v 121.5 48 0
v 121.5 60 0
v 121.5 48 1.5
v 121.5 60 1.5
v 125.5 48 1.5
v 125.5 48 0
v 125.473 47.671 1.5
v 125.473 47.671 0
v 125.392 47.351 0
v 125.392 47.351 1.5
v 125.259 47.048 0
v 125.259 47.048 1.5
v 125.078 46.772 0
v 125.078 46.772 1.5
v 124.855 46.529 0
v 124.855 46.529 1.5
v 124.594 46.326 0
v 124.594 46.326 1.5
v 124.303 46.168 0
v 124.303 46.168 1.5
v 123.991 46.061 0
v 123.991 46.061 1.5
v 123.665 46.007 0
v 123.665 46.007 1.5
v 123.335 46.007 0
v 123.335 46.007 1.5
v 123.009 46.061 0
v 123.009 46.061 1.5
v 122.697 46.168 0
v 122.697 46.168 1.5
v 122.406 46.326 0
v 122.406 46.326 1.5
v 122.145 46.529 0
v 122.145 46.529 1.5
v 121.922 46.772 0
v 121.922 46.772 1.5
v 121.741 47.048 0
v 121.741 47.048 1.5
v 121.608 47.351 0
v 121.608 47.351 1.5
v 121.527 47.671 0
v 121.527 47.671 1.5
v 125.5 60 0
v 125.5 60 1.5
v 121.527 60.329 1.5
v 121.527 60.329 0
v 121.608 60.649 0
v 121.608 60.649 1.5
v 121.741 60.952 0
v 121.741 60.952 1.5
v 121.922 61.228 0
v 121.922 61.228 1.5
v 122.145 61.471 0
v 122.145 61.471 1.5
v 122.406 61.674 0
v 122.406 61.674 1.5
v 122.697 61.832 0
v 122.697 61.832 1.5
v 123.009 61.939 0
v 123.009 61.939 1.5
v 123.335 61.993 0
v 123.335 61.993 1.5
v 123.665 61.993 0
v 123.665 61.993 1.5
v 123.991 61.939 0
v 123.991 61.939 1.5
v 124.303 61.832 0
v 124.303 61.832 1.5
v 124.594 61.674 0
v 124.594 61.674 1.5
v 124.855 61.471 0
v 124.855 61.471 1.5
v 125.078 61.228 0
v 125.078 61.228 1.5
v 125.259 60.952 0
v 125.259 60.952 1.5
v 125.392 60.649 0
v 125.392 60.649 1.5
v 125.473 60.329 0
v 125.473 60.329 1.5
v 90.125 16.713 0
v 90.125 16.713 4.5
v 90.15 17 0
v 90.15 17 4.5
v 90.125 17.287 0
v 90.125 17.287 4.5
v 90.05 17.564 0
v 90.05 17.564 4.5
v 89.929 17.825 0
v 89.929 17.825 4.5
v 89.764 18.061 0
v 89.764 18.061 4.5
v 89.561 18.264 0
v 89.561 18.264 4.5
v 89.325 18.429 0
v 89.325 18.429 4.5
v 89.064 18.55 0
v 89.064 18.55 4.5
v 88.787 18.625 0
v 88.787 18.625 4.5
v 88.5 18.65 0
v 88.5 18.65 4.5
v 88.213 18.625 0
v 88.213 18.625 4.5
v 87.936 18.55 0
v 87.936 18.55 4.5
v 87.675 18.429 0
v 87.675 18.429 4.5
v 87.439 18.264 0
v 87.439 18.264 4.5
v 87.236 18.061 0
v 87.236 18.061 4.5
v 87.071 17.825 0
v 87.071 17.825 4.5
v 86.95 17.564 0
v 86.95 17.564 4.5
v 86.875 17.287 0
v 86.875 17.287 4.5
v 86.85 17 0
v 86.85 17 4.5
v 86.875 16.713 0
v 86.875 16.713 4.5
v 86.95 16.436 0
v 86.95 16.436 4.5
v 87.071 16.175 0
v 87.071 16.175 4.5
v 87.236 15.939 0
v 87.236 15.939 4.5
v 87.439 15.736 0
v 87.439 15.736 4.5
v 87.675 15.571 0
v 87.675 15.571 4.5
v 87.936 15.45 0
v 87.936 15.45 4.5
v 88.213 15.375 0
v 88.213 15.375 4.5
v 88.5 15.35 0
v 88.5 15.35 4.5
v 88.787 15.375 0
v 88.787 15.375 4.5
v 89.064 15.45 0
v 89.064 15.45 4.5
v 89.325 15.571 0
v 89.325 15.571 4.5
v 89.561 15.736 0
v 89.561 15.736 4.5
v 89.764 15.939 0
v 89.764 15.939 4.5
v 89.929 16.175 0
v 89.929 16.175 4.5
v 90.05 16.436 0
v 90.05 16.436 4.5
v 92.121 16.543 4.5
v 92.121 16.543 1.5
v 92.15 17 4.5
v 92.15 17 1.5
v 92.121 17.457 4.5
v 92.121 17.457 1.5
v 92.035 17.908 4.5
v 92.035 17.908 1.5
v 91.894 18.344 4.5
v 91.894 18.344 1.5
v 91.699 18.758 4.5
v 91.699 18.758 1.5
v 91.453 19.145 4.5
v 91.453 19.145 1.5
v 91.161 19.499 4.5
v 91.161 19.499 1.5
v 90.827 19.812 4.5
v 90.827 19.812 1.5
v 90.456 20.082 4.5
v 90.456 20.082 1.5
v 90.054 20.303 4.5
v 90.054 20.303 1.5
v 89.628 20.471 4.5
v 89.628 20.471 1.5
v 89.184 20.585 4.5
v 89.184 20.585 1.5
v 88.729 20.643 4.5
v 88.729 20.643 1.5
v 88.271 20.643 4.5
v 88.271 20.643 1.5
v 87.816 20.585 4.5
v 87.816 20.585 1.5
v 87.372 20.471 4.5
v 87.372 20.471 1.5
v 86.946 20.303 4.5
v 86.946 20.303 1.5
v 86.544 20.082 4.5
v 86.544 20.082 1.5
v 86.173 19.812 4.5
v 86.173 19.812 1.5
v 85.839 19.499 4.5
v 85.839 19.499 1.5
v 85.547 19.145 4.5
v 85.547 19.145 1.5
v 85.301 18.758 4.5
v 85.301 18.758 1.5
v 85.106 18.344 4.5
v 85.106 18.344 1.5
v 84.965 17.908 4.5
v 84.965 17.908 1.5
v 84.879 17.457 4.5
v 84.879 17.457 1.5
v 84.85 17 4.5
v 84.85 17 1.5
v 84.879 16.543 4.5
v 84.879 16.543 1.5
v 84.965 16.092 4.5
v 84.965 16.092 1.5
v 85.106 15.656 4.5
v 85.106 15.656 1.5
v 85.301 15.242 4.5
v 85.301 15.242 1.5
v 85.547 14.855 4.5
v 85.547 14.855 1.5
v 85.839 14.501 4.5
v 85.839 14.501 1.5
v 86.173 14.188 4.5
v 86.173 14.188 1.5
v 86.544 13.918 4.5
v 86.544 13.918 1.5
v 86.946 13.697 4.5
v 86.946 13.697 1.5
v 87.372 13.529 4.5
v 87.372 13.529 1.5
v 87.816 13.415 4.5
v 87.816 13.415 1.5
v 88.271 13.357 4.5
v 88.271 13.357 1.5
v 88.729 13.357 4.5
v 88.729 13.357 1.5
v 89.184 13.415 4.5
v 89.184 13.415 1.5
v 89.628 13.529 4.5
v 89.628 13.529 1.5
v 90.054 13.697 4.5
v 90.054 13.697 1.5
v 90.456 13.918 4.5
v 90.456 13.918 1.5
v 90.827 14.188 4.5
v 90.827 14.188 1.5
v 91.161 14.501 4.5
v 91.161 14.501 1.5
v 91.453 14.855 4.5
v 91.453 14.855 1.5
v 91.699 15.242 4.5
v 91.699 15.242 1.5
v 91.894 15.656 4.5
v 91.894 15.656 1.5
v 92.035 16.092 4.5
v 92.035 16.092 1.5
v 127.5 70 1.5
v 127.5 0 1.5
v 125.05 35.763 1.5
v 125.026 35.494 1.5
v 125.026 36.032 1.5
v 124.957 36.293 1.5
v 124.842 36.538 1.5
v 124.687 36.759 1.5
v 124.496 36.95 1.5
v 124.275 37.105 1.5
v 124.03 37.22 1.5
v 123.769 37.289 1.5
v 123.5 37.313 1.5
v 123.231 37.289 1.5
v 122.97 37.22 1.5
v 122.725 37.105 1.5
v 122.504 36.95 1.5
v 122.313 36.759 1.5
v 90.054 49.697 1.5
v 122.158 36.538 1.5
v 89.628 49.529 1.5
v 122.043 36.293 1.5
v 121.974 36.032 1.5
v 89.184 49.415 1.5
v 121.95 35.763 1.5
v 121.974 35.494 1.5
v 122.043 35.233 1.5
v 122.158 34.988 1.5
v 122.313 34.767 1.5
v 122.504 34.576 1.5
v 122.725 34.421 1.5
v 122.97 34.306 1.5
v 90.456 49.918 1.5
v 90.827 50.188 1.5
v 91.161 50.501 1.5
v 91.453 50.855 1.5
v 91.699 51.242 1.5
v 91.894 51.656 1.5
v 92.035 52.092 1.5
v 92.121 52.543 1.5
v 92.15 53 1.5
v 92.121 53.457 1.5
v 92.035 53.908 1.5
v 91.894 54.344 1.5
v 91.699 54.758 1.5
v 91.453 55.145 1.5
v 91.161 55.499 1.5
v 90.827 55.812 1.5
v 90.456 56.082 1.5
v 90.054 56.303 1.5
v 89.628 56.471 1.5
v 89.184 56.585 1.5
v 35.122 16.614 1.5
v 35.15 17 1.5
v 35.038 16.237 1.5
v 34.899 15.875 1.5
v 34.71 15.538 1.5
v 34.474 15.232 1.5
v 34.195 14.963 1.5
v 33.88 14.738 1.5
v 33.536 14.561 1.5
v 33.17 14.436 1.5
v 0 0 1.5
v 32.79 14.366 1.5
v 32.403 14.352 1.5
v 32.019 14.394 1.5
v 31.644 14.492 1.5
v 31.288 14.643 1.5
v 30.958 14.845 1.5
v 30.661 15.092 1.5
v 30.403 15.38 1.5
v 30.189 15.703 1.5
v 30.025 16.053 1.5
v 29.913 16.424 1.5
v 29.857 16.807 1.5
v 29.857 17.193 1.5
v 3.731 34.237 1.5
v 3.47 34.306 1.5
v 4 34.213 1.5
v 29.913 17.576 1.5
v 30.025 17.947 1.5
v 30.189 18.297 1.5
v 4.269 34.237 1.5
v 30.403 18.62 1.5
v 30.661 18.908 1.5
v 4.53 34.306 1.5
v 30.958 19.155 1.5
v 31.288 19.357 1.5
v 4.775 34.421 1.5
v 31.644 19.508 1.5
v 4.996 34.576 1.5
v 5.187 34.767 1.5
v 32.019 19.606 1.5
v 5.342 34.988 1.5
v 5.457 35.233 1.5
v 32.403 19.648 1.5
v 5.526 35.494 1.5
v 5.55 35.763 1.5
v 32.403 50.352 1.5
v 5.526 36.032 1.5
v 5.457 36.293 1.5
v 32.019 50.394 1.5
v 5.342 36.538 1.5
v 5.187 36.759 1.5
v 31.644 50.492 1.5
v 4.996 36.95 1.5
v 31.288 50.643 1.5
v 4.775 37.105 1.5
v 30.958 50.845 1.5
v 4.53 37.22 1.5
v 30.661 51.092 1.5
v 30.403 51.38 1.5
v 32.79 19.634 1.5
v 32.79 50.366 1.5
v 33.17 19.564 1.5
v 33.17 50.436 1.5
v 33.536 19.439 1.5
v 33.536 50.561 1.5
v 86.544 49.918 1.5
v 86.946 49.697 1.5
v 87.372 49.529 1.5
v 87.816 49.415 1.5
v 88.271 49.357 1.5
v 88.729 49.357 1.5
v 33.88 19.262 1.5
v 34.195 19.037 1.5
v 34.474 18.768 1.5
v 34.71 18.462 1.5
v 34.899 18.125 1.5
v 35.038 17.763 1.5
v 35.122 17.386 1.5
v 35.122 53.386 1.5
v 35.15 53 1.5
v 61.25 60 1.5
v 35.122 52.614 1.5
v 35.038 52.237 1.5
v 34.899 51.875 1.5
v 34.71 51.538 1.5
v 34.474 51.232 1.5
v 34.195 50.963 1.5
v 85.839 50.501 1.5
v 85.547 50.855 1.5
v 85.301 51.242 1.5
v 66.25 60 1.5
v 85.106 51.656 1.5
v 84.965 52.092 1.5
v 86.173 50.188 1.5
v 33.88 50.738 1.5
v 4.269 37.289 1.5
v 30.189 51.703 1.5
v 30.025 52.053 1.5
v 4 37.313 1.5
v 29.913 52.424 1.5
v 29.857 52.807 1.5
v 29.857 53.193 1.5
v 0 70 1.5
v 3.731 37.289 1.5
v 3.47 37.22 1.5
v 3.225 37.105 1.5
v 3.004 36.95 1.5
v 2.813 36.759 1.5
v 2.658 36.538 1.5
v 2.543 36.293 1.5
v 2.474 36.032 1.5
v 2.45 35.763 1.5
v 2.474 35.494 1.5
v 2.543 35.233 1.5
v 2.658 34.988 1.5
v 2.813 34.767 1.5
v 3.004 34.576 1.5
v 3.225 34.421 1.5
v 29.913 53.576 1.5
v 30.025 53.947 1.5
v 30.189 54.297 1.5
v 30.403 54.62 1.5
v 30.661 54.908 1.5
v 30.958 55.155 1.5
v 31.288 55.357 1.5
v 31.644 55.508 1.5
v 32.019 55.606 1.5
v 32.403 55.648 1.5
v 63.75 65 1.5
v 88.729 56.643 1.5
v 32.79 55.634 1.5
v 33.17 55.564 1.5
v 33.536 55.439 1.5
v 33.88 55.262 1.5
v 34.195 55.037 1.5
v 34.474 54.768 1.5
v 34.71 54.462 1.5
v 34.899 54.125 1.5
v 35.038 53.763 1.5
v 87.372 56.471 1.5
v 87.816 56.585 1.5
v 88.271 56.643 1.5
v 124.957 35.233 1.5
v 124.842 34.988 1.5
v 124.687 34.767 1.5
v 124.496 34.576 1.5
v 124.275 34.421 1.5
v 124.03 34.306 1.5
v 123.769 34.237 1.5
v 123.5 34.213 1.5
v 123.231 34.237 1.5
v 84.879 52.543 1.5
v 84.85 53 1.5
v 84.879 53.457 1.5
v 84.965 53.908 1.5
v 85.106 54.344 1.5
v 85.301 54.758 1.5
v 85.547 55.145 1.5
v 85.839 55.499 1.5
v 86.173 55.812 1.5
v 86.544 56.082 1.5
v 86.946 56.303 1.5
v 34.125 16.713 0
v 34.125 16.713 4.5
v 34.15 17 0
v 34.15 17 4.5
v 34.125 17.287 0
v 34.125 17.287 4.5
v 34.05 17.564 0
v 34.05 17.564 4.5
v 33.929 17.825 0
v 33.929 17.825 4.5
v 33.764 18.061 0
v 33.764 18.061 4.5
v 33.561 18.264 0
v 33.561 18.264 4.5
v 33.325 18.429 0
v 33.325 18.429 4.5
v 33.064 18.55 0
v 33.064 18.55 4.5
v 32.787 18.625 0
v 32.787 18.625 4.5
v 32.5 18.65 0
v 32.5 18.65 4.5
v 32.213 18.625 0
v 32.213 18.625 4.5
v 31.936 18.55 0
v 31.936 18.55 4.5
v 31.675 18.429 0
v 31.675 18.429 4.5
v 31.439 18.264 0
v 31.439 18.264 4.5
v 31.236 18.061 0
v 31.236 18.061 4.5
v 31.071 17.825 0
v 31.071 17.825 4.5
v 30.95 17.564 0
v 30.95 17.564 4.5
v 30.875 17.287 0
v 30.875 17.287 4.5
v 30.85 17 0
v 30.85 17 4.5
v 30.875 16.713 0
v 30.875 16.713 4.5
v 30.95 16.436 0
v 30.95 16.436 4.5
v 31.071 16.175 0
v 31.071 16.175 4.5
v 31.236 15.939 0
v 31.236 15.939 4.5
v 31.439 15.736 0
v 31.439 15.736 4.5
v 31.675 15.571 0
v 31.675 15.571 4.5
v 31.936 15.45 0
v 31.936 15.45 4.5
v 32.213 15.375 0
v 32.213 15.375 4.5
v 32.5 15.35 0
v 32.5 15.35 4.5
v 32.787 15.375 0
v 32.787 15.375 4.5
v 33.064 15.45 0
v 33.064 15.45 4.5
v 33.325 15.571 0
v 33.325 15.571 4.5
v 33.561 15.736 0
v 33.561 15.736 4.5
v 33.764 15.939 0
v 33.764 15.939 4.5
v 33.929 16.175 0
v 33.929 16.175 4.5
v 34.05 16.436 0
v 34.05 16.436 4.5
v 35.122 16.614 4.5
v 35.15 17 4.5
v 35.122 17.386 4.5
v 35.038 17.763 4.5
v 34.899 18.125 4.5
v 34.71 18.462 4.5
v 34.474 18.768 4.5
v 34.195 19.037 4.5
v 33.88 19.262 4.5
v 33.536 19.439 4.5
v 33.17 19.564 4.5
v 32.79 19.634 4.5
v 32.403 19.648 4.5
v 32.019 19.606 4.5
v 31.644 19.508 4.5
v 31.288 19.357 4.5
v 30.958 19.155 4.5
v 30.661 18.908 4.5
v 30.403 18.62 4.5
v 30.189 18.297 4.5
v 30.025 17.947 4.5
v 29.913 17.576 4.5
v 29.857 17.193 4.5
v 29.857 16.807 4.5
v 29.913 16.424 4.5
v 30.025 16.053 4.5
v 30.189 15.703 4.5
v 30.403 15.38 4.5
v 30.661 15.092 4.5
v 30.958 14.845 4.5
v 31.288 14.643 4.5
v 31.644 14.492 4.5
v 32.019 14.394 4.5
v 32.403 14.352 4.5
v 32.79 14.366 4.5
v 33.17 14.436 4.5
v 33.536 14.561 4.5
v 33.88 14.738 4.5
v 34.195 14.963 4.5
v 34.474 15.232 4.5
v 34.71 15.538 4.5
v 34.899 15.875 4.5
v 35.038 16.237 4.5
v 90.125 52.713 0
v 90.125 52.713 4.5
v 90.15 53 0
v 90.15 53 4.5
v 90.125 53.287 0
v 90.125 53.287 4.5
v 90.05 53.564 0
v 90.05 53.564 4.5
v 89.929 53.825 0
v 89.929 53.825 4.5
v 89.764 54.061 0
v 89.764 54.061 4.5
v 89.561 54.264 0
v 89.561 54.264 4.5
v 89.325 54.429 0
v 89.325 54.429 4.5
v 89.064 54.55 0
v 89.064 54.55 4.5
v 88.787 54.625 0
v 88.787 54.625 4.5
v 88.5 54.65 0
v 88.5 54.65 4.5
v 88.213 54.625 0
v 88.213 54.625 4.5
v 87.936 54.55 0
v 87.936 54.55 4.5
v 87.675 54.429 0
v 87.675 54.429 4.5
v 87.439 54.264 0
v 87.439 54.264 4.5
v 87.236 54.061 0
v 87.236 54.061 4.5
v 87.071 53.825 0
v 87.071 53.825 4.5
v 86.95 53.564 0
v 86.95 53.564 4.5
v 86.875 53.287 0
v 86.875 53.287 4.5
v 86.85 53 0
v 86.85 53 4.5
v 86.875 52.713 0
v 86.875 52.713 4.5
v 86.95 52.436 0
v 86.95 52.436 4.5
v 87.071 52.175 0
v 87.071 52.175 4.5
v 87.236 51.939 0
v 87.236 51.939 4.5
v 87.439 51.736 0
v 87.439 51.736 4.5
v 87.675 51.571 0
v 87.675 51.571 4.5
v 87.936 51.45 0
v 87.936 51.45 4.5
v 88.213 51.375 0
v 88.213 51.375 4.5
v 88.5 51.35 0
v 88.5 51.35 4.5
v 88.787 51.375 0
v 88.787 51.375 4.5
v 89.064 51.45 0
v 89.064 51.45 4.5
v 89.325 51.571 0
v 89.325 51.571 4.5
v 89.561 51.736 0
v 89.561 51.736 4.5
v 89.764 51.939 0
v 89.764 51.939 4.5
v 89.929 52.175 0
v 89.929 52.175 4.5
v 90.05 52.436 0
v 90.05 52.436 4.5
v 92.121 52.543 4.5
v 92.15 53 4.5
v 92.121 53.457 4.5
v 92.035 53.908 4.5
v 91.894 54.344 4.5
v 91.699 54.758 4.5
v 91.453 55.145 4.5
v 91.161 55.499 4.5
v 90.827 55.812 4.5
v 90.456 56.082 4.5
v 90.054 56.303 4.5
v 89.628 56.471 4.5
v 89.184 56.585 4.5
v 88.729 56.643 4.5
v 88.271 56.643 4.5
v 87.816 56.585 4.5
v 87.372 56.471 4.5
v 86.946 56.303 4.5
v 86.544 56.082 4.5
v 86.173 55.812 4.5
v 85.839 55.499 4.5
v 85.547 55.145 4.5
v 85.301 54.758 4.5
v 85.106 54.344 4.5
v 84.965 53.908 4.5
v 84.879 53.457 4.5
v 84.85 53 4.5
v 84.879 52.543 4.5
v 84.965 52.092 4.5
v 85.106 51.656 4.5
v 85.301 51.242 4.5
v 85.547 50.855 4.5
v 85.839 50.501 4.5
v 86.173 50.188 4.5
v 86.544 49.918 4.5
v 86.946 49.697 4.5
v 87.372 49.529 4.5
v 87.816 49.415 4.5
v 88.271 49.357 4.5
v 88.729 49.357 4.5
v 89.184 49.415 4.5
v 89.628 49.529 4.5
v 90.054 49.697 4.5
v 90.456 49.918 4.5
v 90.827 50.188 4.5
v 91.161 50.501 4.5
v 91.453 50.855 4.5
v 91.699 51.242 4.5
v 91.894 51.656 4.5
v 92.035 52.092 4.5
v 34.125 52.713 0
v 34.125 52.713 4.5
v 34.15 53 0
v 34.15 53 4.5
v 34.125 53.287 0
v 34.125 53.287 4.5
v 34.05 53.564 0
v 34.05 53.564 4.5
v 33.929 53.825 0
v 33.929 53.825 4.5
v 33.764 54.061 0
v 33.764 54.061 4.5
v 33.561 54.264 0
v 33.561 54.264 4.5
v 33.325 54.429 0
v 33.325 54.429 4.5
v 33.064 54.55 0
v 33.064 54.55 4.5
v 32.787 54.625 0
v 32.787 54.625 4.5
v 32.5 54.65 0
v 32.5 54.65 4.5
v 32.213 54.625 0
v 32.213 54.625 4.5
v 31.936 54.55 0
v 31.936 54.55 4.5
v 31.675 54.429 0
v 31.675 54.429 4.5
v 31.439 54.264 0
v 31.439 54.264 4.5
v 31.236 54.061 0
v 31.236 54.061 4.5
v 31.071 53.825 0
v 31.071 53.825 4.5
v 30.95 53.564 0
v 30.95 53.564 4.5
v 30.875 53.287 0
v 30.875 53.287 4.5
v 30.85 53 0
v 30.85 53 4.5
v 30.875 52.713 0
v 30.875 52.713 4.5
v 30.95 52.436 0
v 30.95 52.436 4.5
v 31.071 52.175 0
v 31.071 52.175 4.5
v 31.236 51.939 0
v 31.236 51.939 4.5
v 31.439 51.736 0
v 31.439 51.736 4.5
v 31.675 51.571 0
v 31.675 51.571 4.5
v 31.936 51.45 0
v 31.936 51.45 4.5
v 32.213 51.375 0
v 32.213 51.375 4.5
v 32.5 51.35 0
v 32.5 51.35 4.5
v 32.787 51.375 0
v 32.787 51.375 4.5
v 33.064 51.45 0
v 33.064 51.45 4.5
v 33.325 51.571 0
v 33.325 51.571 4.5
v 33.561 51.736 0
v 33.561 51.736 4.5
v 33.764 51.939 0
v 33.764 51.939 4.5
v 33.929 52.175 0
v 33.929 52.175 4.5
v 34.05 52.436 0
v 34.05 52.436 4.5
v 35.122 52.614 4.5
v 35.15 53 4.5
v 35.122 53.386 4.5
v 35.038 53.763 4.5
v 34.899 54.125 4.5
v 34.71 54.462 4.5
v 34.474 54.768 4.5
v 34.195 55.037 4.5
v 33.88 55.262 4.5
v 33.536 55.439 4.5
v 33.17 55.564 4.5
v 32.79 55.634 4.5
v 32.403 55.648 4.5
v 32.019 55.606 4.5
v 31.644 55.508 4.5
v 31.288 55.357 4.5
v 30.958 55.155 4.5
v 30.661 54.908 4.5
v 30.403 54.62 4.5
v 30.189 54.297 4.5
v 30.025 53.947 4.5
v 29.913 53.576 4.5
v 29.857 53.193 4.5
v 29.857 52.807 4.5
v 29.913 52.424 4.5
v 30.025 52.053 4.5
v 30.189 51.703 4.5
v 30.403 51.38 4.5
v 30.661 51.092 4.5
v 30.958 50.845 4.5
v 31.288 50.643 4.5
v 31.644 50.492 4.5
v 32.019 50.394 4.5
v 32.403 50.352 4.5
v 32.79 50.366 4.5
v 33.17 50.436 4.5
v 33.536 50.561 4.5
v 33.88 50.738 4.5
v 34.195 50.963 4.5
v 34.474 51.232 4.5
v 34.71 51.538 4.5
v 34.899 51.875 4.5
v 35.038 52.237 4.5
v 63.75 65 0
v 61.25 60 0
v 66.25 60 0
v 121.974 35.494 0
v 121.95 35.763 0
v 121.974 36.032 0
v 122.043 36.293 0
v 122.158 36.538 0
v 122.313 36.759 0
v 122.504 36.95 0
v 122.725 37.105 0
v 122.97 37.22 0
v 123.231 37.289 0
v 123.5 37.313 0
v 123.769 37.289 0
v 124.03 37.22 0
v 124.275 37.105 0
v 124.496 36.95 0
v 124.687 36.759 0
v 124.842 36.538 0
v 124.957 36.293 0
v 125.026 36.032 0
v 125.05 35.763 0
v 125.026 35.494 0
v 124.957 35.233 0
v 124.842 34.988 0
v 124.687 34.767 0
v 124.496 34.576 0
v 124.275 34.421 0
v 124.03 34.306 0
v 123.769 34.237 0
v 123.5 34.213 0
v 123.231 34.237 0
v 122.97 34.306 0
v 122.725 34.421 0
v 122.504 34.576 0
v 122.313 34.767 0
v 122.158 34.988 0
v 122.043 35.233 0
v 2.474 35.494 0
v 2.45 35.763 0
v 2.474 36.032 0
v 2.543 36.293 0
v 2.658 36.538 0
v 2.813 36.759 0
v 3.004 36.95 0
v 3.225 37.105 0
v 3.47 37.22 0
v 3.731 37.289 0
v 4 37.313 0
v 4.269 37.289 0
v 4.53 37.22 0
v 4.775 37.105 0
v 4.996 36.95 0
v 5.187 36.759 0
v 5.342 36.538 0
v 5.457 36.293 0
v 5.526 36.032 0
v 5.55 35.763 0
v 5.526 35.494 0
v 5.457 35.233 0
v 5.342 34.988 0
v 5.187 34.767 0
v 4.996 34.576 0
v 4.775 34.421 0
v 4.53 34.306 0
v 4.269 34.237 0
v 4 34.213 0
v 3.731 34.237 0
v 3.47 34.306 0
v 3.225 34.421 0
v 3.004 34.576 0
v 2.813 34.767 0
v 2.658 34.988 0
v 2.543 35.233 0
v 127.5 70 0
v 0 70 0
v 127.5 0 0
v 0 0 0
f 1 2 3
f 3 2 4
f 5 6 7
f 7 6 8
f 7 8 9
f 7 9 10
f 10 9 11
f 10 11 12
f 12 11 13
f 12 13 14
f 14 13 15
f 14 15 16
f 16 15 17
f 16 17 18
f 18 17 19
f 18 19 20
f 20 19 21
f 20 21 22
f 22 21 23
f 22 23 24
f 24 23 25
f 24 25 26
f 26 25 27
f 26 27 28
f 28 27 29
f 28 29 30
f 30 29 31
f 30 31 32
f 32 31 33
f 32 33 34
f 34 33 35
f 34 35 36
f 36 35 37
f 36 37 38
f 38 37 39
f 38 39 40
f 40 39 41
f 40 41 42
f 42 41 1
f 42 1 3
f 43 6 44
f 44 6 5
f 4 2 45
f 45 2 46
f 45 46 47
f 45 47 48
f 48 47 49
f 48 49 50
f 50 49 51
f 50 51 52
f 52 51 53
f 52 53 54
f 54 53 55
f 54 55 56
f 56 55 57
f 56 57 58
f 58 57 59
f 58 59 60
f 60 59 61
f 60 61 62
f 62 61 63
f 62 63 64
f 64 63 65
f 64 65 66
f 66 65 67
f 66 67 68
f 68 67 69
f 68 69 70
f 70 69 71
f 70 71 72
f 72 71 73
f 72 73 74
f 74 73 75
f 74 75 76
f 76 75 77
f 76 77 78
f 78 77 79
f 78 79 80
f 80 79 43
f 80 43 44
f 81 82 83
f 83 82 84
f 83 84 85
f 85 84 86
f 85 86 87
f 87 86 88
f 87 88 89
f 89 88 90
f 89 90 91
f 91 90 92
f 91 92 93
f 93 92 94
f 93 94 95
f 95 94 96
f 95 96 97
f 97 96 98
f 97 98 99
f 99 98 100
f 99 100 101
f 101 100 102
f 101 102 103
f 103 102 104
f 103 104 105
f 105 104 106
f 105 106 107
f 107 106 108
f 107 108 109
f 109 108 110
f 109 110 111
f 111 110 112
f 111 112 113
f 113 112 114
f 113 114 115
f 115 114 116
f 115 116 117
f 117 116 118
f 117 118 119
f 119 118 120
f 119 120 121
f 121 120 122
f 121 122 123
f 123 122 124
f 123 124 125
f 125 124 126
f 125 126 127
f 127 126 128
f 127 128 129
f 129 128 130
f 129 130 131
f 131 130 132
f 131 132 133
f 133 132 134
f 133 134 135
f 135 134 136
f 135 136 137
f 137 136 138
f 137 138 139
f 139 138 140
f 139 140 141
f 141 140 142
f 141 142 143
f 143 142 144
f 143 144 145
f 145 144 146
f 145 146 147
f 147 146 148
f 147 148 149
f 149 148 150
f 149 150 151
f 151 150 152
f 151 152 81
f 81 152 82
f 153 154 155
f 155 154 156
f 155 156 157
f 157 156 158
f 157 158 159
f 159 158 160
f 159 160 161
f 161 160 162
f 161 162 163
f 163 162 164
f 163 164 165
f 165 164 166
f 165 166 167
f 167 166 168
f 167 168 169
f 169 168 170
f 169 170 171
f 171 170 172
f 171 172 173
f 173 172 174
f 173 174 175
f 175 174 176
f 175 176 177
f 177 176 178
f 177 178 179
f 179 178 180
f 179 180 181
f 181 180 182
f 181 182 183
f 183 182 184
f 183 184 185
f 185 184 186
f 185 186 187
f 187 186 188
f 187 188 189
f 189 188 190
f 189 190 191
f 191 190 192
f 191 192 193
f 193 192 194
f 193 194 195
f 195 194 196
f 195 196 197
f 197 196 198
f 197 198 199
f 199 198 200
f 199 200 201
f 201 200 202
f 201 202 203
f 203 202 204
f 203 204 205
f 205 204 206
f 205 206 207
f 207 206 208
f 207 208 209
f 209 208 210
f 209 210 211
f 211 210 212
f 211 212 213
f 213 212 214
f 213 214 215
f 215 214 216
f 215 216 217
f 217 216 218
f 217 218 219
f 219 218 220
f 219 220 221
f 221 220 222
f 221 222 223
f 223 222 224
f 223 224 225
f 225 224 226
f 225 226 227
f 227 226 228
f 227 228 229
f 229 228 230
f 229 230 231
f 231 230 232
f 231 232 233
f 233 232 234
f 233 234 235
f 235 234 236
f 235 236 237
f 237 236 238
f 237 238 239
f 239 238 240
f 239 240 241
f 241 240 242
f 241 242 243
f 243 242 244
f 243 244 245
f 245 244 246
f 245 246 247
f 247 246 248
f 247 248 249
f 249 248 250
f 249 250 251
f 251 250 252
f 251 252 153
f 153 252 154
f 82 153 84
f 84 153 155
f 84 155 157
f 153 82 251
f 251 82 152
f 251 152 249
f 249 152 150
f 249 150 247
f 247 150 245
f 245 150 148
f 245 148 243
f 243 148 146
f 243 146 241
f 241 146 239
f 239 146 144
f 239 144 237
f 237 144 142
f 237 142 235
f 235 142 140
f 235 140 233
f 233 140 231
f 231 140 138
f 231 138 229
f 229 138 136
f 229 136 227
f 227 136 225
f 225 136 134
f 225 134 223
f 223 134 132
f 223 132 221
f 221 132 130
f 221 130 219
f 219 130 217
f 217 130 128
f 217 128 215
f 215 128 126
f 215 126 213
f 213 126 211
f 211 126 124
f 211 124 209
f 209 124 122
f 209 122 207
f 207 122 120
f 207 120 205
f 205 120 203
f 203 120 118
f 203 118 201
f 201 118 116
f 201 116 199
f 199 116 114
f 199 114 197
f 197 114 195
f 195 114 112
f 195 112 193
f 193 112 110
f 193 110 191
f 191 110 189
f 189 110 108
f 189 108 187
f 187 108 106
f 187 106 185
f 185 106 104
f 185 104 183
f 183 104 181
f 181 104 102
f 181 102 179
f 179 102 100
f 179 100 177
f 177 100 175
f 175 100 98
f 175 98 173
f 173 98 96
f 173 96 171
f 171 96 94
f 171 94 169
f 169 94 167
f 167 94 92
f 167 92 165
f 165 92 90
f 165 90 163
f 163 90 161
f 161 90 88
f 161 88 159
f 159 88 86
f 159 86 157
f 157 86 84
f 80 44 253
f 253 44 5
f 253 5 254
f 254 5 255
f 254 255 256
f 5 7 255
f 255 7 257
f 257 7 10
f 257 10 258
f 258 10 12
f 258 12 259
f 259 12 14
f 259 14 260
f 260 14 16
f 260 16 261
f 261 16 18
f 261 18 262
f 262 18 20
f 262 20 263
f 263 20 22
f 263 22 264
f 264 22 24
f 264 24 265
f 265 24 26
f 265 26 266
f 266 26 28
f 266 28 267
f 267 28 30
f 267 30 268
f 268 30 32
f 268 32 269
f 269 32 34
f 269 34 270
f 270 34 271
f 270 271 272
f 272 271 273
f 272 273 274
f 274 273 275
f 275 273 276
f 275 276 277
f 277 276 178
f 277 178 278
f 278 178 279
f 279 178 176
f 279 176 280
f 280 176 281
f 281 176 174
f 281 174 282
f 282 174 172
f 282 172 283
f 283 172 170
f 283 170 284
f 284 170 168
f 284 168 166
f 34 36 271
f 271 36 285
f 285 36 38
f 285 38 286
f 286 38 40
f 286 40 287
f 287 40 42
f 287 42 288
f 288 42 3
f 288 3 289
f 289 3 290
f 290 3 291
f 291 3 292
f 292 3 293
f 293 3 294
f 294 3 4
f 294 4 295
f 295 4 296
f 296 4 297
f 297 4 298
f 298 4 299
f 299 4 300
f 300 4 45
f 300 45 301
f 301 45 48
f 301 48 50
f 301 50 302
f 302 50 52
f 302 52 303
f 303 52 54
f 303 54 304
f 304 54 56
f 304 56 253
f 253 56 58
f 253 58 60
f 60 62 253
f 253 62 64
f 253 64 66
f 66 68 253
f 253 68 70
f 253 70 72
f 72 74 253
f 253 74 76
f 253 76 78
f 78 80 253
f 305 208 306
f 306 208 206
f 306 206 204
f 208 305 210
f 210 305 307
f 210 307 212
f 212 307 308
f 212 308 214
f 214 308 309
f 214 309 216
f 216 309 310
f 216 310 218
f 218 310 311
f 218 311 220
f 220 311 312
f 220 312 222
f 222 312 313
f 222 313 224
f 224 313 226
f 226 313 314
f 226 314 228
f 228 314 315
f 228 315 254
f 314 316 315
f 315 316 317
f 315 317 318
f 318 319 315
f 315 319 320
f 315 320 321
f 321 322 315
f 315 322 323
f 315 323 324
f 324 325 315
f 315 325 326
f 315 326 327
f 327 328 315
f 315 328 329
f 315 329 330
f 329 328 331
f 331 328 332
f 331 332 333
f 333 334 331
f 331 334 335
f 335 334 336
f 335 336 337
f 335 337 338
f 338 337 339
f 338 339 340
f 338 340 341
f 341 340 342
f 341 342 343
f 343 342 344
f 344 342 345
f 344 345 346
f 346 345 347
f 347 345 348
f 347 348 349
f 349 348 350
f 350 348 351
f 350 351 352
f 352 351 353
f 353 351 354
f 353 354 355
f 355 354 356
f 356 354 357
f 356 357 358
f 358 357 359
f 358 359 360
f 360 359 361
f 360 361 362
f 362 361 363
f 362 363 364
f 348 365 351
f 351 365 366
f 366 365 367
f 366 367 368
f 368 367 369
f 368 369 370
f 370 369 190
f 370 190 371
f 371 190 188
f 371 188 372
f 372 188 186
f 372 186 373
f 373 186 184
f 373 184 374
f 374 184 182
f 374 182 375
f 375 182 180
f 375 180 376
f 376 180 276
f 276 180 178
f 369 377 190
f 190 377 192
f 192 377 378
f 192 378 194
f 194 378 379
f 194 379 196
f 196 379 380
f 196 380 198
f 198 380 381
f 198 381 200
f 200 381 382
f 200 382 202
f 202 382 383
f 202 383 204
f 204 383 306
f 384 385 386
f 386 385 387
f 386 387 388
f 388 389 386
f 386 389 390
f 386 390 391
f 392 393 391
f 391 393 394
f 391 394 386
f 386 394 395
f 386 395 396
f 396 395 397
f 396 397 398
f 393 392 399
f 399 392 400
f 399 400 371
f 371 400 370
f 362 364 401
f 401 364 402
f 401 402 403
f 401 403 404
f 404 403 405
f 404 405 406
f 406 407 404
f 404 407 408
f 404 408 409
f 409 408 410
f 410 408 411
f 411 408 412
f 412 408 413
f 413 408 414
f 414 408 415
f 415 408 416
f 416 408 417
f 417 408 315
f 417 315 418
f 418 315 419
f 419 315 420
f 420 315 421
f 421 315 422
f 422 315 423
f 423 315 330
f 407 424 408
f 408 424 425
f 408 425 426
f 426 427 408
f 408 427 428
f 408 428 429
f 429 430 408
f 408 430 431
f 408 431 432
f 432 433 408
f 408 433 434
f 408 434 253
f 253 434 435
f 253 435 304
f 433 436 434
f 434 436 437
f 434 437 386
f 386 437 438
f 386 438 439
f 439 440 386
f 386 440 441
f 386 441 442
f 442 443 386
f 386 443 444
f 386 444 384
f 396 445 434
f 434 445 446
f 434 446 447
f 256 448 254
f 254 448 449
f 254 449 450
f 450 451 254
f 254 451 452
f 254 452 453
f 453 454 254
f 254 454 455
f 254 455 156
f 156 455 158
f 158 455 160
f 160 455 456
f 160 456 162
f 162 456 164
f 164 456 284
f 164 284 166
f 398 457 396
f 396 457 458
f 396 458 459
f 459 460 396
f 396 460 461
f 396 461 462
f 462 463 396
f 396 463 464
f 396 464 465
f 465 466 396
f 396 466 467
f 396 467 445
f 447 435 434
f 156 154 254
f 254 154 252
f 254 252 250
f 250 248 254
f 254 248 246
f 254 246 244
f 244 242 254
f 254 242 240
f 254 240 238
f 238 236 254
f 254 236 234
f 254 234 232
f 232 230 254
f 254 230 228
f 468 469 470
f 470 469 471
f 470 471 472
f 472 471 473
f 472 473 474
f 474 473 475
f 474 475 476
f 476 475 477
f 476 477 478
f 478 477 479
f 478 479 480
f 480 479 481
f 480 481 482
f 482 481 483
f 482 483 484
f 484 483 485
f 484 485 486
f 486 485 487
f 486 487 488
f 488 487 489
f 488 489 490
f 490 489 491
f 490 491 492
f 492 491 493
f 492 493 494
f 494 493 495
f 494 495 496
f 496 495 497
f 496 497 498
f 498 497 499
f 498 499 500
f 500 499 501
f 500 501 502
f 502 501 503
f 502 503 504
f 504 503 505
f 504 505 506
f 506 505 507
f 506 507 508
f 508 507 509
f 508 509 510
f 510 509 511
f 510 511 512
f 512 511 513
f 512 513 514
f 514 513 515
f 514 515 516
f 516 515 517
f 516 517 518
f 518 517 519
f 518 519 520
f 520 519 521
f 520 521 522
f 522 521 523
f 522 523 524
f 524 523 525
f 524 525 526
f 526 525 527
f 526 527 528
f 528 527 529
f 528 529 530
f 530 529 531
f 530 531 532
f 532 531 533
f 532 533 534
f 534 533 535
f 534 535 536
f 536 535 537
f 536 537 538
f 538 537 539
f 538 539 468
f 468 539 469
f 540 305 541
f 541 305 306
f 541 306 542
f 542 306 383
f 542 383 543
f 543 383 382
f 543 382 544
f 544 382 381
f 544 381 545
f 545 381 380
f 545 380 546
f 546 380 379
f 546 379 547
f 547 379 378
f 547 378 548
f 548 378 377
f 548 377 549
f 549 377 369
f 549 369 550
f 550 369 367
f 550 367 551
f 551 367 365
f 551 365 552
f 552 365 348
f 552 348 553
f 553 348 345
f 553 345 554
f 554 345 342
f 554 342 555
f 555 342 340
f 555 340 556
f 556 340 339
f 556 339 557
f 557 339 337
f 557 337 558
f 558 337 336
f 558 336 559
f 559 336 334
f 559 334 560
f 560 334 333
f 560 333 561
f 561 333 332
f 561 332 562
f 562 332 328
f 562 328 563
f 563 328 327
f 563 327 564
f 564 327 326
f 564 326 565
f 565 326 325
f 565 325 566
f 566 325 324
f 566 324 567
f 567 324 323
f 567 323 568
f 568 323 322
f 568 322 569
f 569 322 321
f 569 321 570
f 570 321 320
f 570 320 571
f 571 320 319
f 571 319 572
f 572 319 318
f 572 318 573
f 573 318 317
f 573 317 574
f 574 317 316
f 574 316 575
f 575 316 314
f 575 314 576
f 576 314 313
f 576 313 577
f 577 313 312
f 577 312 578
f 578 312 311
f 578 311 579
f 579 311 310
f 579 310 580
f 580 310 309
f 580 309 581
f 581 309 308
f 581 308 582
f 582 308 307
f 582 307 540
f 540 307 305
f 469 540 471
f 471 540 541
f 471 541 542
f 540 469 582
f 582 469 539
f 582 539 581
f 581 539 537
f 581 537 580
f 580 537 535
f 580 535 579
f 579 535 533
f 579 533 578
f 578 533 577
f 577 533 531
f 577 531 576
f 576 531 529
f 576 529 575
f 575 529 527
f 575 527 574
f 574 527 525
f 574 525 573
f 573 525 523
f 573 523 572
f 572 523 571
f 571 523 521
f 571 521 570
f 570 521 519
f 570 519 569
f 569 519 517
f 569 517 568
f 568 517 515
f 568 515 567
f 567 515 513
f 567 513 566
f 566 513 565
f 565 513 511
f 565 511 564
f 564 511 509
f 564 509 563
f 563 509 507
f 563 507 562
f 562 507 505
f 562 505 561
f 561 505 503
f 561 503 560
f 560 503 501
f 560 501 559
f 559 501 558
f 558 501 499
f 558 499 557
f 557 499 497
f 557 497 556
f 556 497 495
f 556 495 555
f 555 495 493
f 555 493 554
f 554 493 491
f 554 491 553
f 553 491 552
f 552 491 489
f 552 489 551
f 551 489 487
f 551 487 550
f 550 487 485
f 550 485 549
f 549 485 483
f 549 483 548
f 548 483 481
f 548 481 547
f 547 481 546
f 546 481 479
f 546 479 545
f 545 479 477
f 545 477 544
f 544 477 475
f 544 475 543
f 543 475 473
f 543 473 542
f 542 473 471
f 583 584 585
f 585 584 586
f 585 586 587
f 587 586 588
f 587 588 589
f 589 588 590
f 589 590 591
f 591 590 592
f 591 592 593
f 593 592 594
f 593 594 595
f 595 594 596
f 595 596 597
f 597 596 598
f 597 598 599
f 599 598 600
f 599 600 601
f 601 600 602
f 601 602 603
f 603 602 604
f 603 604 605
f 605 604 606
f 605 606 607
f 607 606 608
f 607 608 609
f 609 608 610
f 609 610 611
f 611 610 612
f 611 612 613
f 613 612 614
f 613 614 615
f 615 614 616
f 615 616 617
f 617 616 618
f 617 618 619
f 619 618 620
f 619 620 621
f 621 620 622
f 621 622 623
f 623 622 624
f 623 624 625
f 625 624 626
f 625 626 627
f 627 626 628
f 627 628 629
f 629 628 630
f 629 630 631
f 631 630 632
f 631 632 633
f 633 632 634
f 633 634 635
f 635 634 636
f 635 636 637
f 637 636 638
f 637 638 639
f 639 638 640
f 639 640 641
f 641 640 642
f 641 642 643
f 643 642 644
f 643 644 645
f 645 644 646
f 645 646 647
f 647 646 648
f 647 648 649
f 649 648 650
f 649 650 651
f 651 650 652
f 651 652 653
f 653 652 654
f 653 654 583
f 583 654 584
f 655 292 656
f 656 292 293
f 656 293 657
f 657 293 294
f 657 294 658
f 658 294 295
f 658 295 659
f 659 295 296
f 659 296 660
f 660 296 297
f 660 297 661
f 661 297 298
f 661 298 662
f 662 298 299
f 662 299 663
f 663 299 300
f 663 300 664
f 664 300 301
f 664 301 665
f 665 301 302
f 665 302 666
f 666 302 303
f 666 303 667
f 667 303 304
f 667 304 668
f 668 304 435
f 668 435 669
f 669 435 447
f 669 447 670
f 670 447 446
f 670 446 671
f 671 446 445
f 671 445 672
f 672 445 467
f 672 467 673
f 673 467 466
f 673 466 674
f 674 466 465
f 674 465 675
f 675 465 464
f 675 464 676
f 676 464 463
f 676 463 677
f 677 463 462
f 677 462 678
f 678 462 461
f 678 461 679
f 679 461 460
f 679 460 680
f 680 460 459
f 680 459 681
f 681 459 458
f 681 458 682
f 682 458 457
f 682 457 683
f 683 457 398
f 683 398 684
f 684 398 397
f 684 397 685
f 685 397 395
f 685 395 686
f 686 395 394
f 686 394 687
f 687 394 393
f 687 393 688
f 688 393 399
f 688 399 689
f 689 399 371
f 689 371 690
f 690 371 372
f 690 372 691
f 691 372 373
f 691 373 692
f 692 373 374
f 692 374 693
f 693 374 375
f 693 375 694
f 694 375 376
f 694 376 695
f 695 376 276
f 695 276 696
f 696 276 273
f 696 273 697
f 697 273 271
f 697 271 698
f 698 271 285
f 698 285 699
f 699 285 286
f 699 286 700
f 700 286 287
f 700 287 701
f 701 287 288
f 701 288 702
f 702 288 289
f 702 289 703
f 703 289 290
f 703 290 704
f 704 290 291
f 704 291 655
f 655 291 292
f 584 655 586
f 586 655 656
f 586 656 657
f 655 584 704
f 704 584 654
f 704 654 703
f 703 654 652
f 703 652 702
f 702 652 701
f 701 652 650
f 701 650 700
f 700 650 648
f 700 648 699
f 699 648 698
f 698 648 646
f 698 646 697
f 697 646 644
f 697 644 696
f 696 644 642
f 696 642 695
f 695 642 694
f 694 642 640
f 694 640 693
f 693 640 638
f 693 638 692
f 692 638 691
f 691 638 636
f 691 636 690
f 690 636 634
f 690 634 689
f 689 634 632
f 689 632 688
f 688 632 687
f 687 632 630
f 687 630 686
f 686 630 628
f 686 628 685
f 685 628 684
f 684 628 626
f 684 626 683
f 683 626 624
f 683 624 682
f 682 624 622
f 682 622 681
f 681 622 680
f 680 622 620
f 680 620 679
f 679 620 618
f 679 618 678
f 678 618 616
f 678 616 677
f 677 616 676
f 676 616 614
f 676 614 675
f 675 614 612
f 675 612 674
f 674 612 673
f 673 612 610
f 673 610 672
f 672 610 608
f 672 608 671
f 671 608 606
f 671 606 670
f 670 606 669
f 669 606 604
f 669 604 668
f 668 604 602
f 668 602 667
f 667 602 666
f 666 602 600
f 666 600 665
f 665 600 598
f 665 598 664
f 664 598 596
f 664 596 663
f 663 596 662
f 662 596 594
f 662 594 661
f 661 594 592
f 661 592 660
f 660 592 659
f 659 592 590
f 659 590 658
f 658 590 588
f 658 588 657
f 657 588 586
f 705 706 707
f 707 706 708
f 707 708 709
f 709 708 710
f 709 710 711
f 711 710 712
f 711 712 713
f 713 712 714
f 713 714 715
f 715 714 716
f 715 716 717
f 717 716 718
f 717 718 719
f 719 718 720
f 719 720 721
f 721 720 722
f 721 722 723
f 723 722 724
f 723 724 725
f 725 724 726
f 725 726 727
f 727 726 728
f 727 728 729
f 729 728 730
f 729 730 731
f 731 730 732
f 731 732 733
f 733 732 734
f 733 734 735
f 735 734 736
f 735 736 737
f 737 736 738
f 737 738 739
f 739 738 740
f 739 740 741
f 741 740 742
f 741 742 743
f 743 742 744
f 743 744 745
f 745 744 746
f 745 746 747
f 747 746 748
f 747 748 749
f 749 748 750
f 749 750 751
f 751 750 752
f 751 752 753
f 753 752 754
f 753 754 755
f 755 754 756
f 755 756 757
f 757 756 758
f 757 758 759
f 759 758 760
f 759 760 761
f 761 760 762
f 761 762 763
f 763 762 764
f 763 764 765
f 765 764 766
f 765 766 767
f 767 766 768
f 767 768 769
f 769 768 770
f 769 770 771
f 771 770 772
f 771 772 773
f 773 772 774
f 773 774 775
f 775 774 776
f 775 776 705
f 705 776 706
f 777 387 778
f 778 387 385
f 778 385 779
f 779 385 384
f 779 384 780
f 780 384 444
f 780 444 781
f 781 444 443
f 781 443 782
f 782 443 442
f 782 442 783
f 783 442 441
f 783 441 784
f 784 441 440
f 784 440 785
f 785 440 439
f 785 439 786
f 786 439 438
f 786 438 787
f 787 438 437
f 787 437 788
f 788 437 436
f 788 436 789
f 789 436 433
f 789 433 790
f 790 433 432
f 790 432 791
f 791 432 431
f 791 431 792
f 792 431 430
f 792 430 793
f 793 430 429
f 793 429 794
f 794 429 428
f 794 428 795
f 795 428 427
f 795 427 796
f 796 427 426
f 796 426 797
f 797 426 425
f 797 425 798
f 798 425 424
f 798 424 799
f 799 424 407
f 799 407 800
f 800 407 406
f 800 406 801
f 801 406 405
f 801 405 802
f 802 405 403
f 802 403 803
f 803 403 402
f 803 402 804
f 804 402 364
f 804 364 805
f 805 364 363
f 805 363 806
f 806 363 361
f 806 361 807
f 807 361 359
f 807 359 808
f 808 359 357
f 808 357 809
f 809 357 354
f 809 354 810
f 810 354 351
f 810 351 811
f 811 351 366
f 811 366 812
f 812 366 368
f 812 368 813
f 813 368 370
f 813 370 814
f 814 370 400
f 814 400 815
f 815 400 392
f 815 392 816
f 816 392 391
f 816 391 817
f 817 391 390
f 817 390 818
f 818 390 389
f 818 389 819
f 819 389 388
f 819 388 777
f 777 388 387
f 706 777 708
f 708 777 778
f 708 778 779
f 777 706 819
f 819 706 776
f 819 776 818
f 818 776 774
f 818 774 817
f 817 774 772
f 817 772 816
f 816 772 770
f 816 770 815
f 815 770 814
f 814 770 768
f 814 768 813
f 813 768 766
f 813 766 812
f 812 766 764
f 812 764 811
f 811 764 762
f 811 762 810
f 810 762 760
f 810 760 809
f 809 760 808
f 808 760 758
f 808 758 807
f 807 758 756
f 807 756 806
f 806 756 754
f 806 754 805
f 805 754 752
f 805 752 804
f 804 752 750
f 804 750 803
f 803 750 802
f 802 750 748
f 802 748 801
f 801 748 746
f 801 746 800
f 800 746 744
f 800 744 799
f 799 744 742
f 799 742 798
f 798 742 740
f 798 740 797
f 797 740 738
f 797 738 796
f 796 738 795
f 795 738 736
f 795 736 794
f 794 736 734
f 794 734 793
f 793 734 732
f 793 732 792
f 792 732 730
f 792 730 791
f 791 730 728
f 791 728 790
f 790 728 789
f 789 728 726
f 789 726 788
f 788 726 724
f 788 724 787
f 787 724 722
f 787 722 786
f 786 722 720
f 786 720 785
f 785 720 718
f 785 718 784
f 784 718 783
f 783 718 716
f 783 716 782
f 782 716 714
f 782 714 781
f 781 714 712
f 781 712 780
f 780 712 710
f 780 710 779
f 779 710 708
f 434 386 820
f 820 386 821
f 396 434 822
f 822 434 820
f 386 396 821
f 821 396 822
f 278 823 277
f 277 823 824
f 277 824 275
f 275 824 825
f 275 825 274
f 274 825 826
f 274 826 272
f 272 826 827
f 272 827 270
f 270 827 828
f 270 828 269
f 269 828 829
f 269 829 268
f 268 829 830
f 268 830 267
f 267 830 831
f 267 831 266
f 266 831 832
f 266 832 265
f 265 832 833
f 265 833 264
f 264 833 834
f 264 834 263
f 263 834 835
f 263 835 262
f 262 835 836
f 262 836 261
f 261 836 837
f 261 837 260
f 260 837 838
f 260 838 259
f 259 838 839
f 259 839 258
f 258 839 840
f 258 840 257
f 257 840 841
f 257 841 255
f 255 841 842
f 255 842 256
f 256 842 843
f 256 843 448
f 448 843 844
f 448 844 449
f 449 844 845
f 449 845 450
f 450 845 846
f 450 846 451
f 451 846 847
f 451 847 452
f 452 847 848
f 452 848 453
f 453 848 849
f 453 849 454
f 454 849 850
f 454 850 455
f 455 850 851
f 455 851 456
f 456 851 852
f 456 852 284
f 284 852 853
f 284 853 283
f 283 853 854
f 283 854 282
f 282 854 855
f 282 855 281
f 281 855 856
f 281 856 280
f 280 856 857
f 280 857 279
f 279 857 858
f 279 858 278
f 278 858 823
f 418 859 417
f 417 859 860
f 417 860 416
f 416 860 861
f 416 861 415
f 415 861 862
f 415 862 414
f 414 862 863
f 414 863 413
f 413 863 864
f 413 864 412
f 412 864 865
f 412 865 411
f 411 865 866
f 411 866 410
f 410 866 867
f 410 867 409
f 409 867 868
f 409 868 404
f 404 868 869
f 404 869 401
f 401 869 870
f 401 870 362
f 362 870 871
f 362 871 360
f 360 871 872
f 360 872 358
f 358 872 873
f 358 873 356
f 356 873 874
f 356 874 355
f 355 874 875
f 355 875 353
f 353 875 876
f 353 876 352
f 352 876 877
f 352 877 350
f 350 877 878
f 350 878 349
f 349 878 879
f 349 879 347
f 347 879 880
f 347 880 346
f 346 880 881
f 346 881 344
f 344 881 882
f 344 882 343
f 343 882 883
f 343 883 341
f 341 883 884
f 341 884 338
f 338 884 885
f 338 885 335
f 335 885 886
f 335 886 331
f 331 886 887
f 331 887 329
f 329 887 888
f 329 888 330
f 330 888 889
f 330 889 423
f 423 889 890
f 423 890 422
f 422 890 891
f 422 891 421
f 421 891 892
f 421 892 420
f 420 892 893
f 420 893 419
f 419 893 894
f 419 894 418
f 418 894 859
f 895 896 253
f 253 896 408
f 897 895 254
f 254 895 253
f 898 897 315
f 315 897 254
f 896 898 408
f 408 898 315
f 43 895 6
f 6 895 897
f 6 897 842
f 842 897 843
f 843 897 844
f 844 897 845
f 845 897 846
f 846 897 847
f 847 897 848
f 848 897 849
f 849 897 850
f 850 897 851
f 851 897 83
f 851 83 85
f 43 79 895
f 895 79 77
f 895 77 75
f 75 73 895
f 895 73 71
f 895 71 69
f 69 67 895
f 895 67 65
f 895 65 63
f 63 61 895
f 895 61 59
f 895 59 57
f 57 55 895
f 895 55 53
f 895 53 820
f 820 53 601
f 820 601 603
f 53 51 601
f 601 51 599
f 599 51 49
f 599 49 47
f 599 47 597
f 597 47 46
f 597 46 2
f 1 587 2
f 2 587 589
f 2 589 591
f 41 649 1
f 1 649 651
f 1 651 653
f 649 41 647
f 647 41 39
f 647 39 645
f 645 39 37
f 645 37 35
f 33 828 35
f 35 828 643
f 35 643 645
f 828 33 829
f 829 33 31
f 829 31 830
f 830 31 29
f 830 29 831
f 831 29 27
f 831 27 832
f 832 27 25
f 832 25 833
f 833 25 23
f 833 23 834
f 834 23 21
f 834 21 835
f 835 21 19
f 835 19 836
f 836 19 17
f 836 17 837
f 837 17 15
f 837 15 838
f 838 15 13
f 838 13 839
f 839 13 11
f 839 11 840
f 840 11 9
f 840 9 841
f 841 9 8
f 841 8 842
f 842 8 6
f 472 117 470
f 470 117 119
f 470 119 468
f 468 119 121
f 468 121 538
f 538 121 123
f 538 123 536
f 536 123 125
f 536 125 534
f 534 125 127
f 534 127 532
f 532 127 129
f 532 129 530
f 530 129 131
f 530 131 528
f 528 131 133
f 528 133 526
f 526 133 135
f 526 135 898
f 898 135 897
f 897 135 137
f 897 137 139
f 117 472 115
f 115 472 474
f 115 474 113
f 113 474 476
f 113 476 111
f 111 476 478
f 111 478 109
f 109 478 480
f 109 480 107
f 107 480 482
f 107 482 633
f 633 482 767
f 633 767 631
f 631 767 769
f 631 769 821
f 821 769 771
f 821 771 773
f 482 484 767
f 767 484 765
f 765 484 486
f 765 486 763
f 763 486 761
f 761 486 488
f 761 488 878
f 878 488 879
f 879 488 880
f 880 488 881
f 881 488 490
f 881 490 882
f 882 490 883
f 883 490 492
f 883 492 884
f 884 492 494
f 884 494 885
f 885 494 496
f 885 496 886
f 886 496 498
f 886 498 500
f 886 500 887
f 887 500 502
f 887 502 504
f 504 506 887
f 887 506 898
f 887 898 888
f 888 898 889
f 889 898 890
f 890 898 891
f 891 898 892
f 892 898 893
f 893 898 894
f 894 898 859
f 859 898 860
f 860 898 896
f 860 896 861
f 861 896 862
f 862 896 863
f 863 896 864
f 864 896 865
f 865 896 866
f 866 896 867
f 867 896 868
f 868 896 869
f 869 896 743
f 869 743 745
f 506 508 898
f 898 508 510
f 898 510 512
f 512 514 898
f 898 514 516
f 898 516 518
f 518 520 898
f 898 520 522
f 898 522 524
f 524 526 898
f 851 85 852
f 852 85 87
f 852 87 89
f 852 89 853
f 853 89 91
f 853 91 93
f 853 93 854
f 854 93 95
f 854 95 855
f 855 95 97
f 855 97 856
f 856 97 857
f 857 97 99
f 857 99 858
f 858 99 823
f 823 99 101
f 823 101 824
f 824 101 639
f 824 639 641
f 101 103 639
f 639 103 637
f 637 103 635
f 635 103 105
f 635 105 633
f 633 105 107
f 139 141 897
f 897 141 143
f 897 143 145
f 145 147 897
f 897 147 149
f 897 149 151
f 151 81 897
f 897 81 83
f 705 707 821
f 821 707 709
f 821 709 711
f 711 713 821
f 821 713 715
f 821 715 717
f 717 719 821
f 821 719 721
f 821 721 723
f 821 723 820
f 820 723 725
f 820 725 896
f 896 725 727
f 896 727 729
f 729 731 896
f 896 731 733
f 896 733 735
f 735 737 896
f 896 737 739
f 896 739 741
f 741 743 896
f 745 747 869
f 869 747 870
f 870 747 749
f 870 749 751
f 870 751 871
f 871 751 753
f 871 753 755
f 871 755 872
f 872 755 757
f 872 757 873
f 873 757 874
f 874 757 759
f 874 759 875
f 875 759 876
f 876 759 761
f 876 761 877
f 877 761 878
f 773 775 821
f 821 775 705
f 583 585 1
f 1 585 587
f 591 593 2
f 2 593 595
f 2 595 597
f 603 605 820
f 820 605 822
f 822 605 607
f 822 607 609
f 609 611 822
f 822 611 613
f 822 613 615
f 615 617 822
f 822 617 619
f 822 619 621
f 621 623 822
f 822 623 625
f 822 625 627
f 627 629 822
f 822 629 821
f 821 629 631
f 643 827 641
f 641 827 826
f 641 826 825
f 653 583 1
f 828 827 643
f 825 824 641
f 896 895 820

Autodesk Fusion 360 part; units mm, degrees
sketch "Sketch1" plane through (0, 0, 0) normal (0, 0, 1) x (1, 0, 0)
  line L0 (0, 0) -> (127.5, 0)
  line L1 (127.5, 0) -> (127.5, 70)
  line L2 (127.5, 70) -> (0, 70)
  line L3 (0, 70) -> (0, 0)
  circle A0 centre (4, 35.763) radius 1.55
  line L4 (63.75, 0) -> (63.75, 70) construction
  circle A1 centre (123.5, 35.763) radius 1.55
  line L5 (66.25, 60) -> (61.25, 60)
  line L6 (61.25, 60) -> (61.25, 65)
  line L7 (61.25, 65) -> (66.25, 65)
  line L8 (66.25, 65) -> (66.25, 60)
  line L9 (66.25, 60) -> (61.25, 65) construction
  line L10 (61.25, 60) -> (66.25, 65) construction
  line L11 (63.75, 65) -> (61.25, 60)
  line L12 (63.75, 65) -> (66.25, 60)
  point P0 (63.75, 62.5)
  dimension "d1" = 127.5
  dimension "d2" = 70
  dimension "d3" = 3.1
  dimension "d4" = 35.763
  dimension "d5" = 4
  dimension "d8" = 5
  dimension "d9" = 5
  dimension "d12" = 5
extrude "Extrude1" add sketch "Sketch1" along normal blind 1.5 contours L0 L1 L2 L3 | L7 L8 L12 | L5 L11 L12 | L6 L7 L11
extrude "Extrude2" cut sketch "Sketch1" along normal blind 3 contours L5 L11 L12
sketch "Sketch2" plane through (0, 0, 1.5) normal (0, 0, 1) x (-1, 0, 0)
  line L0 (-63.75, -65) -> (-66.25, -60)
  line L1 (-66.25, -60) -> (-61.25, -60)
  line L2 (-61.25, -60) -> (-63.75, -65)
  circle A0 centre (-123.5, -35.763) radius 1.55
  circle A1 centre (-4, -35.763) radius 1.55
  line L3 (0, -70) -> (0, 0)
  line L4 (0, 0) -> (-127.5, 0)
  line L5 (-127.5, 0) -> (-127.5, -70)
  line L6 (-127.5, -70) -> (0, -70)
  line L7 (-90.5, -15) -> (-30.5, -15)
  line L8 (-30.5, -15) -> (-30.5, -55)
  line L9 (-30.5, -55) -> (-90.5, -55)
  line L10 (-90.5, -55) -> (-90.5, -15)
  line L11 (-90.5, -15) -> (-30.5, -55) construction
  line L12 (-30.5, -15) -> (-90.5, -55) construction
  circle A2 centre (-32.5, -53) radius 1.65
  circle A3 centre (-32.5, -53) radius 2.65
  circle A4 centre (-32.5, -17) radius 1.65
  circle A5 centre (-32.5, -17) radius 2.65
  circle A6 centre (-88.5, -53) radius 1.65
  circle A7 centre (-88.5, -53) radius 3.65
  circle A8 centre (-88.5, -17) radius 1.65
  circle A9 centre (-88.5, -17) radius 3.65
  line L13 (-123.5, -35.763) -> (-123.5, 0) construction
  line L14 (-123.5, -35.763) -> (-123.5, -70) construction
  line L15 (-125.5, -48) -> (-125.5, -60)
  arc A10 (-125.5, -60) -> (-121.5, -60) centre (-123.5, -60) ccw
  line L16 (-121.5, -60) -> (-121.5, -48)
  arc A11 (-121.5, -48) -> (-125.5, -48) centre (-123.5, -48) ccw
  line L17 (-123.5, -48) -> (-123.5, -60) construction
  point P0 (-60.5, -35)
  dimension "d13" = 40
  dimension "d14" = 60
  dimension "d15" = 15
  dimension "d16" = 37
  dimension "d17" = 3.3
  dimension "d18" = 5.3
  dimension "d19" = 2
  dimension "d20" = 2
  dimension "d21" = 3.3
  dimension "d22" = 5.3
  dimension "d23" = 2
  dimension "d24" = 2
  dimension "d25" = 3.3
  dimension "d26" = 7.3
  dimension "d27" = 2
  dimension "d28" = 2
  dimension "d29" = 3.3
  dimension "d30" = 7.3
  dimension "d31" = 2
  dimension "d32" = 2
  dimension "d37" = 4
  dimension "d38" = 10
  dimension "d39" = 12
extrude "Extrude3" add sketch "Sketch2" along normal blind 3 contours L7 L10 A9 | L7 L10 A9 | L7 A5 | L7 L8 A5 | L9 L10 A7 | L9 L10 A7 | L8 A5 | L8 A3 | L8 L9 A3 | L9 A3 picked at (-32.5411, -15.1182) picked at (-32.5411, -54.8818)
extrude "Extrude4" cut sketch "Sketch2" against normal blind 4 contours A2 | A4 | A6 | A8
extrude "Extrude5" cut sketch "Sketch2" against normal blind 4 contours L15 A10 L16 A11
equation "d1 = 134 mm - 6 mm - 0.5 mm"
equation "d4 = 0.763 mm + 35 mm"
equation "d5 = 7 mm - 3 mm"
equation "d18 = d17 + 2 mm"
equation "d21 = d17"
equation "d22 = d18"
equation "d23 = d20"
equation "d24 = d19"
equation "d25 = d17"
equation "d26 = d25 + 4 mm"
equation "d27 = d19"
equation "d28 = d20"
equation "d29 = d25"
equation "d30 = d26"
equation "d31 = d28"
equation "d32 = d27"
